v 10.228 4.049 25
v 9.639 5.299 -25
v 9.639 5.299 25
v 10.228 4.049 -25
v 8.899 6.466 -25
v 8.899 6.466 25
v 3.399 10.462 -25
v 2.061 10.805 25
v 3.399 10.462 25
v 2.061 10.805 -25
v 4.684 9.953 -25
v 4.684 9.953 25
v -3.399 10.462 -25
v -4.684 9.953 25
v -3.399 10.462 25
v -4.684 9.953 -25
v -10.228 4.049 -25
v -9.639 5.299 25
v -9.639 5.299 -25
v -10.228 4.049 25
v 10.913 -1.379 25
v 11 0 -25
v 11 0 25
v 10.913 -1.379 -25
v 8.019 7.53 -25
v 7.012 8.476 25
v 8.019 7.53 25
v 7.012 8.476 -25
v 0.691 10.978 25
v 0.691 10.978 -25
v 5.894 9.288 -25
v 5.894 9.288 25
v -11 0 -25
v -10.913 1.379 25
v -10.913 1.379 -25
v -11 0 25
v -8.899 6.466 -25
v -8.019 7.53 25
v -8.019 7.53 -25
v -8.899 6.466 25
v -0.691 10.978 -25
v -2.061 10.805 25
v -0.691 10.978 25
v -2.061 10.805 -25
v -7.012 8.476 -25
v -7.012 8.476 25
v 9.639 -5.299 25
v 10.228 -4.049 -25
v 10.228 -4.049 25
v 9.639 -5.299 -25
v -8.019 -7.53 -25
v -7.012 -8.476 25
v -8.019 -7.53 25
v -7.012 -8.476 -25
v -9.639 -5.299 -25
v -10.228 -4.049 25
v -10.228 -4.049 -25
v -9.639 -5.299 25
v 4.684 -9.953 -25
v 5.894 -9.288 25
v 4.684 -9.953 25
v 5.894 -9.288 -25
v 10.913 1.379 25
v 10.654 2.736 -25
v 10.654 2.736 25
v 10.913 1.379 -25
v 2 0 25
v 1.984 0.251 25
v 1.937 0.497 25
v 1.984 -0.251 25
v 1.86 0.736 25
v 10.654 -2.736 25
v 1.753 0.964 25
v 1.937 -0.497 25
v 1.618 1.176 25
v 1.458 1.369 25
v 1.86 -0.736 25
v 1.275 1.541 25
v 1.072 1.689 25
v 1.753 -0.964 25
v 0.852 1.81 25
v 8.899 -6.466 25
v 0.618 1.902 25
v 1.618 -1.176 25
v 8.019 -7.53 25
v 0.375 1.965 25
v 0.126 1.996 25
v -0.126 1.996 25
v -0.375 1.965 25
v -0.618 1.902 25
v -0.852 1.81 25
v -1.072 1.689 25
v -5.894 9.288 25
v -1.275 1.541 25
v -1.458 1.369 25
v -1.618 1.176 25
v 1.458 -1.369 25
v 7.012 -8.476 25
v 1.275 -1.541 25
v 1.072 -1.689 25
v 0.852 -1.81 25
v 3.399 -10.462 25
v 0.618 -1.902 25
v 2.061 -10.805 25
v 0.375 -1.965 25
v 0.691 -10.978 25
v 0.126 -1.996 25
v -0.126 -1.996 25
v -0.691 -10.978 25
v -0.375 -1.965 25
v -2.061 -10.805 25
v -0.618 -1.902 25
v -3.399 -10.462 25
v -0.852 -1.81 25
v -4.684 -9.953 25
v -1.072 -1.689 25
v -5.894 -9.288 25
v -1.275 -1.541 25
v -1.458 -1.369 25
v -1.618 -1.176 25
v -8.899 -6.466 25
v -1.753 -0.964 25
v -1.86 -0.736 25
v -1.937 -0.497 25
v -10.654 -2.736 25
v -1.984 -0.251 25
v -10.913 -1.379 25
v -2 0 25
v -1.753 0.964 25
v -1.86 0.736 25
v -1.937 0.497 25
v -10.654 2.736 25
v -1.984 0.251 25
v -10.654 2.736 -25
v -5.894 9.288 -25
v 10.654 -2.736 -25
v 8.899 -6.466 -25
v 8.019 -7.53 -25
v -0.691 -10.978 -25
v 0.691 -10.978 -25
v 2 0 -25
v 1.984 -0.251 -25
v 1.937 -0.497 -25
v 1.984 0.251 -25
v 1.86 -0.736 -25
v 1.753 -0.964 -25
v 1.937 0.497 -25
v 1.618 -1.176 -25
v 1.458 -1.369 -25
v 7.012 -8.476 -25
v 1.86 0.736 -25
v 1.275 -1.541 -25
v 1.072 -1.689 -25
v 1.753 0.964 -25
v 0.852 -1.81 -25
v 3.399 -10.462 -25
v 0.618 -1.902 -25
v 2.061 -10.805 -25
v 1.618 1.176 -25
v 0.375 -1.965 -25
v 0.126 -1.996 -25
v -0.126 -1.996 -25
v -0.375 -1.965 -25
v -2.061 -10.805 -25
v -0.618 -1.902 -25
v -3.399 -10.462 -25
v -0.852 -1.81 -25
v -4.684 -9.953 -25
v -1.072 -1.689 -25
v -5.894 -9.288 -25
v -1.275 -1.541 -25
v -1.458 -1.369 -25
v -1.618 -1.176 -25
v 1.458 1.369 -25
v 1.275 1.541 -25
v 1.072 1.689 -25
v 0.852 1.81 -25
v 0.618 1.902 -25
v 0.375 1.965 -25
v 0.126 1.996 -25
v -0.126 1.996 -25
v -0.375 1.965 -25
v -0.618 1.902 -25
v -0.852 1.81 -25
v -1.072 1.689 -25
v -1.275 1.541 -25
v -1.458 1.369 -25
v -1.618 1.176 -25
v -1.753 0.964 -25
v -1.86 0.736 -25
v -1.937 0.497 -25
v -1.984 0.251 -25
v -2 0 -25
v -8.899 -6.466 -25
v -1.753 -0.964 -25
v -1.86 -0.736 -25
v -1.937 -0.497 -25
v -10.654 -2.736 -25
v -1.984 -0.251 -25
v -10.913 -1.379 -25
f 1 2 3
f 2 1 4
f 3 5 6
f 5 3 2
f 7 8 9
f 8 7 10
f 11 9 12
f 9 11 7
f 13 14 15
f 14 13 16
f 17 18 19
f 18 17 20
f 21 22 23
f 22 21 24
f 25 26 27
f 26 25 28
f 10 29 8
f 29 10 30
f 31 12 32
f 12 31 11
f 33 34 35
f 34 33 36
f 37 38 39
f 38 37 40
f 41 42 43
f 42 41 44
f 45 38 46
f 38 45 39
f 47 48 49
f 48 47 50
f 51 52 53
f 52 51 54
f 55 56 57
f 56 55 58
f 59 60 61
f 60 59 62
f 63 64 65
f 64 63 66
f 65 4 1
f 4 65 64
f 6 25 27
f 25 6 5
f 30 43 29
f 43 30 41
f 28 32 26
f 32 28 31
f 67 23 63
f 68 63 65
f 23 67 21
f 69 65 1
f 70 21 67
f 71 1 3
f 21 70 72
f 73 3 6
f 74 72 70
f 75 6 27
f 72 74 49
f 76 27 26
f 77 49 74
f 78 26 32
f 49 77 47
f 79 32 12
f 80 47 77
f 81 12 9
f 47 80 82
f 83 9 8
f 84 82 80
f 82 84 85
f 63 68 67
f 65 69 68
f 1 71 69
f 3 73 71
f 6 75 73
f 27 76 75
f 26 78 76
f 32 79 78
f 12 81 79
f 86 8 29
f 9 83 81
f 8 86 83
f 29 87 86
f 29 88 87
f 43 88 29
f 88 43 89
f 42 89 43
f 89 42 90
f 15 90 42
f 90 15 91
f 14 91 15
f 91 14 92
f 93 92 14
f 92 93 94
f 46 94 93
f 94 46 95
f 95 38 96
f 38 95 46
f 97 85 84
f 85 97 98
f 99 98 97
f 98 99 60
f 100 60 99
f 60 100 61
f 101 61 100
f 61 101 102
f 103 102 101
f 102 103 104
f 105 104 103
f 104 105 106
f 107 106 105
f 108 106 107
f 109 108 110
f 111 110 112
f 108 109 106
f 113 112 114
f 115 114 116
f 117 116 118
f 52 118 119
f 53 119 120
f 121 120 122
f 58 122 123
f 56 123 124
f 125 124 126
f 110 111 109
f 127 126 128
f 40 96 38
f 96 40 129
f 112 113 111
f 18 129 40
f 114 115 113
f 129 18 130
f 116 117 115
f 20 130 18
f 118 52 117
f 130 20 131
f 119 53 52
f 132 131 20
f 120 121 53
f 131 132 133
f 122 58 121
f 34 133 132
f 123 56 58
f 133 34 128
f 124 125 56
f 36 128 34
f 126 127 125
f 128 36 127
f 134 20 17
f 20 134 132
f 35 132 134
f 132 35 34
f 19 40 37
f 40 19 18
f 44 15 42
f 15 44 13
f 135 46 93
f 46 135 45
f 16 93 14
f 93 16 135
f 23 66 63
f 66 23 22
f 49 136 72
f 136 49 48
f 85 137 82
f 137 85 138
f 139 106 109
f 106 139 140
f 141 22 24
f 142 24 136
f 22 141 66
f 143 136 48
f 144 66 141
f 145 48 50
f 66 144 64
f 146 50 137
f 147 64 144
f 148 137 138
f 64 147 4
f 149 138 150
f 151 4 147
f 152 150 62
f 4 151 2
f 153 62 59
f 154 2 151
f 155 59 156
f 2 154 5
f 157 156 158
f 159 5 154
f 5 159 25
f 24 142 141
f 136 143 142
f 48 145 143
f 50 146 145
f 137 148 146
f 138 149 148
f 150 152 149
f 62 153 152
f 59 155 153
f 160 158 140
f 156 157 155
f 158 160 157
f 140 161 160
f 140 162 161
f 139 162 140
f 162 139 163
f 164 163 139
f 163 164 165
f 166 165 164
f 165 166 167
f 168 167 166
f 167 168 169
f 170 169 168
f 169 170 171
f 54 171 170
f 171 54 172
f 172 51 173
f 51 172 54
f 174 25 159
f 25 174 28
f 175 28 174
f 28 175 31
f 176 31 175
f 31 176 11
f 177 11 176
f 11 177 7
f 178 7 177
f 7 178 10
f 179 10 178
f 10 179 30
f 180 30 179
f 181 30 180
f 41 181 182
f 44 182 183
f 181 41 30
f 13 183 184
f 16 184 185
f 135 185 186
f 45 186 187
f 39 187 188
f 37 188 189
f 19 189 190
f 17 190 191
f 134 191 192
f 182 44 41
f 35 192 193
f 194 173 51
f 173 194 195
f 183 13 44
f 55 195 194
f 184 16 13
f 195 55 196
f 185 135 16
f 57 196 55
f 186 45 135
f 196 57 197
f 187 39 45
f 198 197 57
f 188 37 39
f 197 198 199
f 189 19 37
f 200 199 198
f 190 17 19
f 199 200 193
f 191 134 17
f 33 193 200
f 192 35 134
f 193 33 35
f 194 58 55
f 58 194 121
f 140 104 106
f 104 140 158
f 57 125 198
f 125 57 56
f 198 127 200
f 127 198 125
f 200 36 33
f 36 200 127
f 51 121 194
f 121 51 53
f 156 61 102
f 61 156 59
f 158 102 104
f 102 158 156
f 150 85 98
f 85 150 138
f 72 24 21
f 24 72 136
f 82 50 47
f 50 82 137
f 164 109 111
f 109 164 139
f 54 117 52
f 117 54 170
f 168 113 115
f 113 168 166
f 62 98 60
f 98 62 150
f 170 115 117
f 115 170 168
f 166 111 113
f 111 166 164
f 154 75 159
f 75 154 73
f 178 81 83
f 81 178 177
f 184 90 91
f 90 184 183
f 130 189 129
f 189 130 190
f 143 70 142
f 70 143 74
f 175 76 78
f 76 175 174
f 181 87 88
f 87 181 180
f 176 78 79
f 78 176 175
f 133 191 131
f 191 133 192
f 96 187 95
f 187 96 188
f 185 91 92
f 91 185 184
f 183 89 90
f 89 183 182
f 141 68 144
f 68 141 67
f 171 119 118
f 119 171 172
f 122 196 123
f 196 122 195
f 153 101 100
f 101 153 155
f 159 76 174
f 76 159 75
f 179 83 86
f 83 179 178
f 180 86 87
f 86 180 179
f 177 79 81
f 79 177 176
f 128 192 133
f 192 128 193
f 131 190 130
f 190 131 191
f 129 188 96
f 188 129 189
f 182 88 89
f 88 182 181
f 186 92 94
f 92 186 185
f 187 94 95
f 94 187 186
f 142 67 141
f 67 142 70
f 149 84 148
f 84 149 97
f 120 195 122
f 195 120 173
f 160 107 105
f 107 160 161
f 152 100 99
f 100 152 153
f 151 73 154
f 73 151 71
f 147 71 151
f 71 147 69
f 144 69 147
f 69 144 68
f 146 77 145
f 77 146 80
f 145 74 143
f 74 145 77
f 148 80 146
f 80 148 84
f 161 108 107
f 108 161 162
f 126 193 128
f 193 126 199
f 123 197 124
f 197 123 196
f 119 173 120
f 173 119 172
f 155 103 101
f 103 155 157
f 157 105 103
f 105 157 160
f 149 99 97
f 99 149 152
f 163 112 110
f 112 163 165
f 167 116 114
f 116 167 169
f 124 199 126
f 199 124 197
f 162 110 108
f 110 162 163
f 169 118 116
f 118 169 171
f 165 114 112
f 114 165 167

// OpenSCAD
$fn = 50;


difference() {
	union() {
		translate(v = [0, 0, -25.0000000000]) {
			cylinder(h = 50, r = 11.0000000000);
		}
	}
	union() {
		translate(v = [0, 0, -100.0000000000]) {
			cylinder(h = 200, r = 2);
		}
	}
}
